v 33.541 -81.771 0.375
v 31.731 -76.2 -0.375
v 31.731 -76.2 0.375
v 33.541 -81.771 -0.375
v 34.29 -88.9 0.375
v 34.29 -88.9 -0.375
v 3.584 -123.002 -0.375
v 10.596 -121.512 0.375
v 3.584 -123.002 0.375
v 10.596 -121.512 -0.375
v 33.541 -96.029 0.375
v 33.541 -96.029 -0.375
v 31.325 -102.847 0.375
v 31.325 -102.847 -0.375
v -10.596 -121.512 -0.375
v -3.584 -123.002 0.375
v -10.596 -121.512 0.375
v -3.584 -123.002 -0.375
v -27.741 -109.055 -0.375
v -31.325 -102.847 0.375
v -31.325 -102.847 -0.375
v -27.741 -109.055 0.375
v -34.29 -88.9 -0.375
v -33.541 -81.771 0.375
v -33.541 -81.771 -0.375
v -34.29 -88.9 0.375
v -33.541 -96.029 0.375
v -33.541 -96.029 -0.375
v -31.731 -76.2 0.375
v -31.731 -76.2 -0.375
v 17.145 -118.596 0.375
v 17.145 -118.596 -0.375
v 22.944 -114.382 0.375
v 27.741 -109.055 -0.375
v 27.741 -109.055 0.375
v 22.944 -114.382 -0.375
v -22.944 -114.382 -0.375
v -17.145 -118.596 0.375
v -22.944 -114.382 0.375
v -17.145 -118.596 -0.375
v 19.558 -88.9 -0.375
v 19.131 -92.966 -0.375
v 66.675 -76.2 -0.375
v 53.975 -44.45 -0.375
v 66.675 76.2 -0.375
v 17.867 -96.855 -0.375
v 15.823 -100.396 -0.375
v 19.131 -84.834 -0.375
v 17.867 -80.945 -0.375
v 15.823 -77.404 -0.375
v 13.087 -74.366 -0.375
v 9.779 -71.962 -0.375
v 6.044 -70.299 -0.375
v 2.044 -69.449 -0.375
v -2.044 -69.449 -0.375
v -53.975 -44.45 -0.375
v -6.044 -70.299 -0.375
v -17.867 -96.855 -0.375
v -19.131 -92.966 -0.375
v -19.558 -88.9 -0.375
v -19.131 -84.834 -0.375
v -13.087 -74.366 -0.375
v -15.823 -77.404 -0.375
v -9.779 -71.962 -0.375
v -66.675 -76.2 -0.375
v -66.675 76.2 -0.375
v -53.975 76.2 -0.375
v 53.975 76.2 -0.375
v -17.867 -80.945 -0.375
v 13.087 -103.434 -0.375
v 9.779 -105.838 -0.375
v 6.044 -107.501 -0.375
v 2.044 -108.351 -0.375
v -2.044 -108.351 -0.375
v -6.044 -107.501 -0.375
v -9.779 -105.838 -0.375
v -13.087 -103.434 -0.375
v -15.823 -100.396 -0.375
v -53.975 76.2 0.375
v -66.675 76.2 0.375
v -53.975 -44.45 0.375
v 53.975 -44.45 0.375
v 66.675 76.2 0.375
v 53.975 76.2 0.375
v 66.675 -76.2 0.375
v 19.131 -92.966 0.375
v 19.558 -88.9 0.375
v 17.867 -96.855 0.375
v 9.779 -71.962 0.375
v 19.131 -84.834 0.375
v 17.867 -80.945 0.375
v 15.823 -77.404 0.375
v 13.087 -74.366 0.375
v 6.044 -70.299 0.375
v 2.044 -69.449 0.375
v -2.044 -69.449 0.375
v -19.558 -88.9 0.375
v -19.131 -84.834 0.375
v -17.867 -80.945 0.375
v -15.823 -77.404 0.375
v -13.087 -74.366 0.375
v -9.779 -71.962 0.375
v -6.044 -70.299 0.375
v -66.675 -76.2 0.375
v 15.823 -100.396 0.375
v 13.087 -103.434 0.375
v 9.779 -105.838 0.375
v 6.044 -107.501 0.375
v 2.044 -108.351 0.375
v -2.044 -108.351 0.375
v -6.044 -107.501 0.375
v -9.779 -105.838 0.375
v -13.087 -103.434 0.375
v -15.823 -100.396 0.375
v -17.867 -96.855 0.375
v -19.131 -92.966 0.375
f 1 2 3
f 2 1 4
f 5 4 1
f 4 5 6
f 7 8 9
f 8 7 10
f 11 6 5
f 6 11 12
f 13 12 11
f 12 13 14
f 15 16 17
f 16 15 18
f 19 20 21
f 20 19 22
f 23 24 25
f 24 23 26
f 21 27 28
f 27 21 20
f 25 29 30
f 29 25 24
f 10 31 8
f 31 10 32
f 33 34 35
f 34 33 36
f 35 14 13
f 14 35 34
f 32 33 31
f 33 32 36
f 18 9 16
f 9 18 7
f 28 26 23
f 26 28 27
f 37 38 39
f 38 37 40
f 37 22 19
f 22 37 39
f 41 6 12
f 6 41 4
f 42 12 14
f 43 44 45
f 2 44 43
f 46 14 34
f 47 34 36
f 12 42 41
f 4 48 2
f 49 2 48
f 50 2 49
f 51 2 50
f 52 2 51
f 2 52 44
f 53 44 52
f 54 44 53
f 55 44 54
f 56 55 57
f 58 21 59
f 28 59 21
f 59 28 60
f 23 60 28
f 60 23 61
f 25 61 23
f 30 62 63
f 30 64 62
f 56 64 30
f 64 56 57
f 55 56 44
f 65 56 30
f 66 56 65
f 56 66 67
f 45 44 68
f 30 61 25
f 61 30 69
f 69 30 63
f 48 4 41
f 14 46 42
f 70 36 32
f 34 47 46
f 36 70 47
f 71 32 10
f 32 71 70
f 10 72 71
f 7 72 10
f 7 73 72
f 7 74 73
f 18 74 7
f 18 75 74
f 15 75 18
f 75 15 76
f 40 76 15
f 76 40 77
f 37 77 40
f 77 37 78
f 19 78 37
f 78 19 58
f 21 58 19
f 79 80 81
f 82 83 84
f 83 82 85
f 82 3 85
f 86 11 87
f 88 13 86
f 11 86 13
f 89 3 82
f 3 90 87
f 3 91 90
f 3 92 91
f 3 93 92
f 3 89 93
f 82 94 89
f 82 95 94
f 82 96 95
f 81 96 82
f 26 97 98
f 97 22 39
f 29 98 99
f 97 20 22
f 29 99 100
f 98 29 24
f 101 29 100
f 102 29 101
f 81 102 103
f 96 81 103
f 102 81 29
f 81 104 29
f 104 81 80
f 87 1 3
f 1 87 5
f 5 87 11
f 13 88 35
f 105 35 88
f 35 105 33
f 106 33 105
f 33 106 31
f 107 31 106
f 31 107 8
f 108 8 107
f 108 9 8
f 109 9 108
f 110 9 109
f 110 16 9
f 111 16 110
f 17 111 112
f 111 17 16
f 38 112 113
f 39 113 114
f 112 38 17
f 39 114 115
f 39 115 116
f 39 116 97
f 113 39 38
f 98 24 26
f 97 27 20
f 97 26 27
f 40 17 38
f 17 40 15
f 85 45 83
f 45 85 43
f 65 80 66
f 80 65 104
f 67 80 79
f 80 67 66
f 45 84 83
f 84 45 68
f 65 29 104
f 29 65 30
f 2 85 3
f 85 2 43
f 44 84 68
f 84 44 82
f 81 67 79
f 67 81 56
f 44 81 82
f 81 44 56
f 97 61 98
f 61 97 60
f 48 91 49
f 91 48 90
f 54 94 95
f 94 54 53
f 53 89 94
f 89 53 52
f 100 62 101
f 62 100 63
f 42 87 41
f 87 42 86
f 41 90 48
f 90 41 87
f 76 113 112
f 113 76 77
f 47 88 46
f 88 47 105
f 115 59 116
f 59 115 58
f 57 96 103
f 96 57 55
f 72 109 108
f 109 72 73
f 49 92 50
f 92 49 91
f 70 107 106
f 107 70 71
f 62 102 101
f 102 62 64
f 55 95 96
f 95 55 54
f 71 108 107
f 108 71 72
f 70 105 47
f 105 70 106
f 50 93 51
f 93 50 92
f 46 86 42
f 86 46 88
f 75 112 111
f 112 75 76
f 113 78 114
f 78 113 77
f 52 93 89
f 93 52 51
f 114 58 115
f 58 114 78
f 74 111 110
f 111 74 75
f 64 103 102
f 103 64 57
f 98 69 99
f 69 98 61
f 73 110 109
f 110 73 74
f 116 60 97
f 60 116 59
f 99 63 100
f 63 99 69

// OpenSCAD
// 25.4mm is 1.25inch
scale = 25.4;
//z=2*scale;

z=.75;
x=5.25*scale;
y=6*scale;

radius_inner = .77*scale;
radius_outer = 1.35*scale;

zip_tie_radius_inner = .15*scale;
zip_tie_radius_outer = .3*scale;

module base(){
    translate([0,-3.50*scale,0]) cylinder(r=radius_outer,h=z,center=true);
    cube(size = [x,y,z], center = true);
}


module poleCutOut(){
    translate([0,-3.5*scale,0]) cylinder(r=radius_inner,h=z,center=true);    
}

module zipTieCutOut(){
    translate([0, 2.6*scale,-.5*scale]) rotate(90,[0,1,0]) cylinder(r=zip_tie_radius_inner, h=7*scale,center=true);
    translate([0, 2.6*scale,.5*scale]) rotate(90,[0,1,0]) cylinder(r=zip_tie_radius_inner, h=7*scale,center=true);
}

module cutOut(){
    translate([0,1*scale,0]) cube(size = [x-1*scale, y-.5*scale, z], center = true);
}

module testWidthBar(){
    cube(size = [4.25*scale,2*scale,2*scale], center = true);
}

module testDiameterBar(){
    translate([0,-3.5*scale,0]) cube(size = [1.5*scale,.25*scale,.25*scale], center = true);
}


difference(){
    base();
    cutOut();
    poleCutOut();
    zipTieCutOut();
    testWidthBar();
    testDiameterBar();
}

//testBar();
//testDiameterBar();
